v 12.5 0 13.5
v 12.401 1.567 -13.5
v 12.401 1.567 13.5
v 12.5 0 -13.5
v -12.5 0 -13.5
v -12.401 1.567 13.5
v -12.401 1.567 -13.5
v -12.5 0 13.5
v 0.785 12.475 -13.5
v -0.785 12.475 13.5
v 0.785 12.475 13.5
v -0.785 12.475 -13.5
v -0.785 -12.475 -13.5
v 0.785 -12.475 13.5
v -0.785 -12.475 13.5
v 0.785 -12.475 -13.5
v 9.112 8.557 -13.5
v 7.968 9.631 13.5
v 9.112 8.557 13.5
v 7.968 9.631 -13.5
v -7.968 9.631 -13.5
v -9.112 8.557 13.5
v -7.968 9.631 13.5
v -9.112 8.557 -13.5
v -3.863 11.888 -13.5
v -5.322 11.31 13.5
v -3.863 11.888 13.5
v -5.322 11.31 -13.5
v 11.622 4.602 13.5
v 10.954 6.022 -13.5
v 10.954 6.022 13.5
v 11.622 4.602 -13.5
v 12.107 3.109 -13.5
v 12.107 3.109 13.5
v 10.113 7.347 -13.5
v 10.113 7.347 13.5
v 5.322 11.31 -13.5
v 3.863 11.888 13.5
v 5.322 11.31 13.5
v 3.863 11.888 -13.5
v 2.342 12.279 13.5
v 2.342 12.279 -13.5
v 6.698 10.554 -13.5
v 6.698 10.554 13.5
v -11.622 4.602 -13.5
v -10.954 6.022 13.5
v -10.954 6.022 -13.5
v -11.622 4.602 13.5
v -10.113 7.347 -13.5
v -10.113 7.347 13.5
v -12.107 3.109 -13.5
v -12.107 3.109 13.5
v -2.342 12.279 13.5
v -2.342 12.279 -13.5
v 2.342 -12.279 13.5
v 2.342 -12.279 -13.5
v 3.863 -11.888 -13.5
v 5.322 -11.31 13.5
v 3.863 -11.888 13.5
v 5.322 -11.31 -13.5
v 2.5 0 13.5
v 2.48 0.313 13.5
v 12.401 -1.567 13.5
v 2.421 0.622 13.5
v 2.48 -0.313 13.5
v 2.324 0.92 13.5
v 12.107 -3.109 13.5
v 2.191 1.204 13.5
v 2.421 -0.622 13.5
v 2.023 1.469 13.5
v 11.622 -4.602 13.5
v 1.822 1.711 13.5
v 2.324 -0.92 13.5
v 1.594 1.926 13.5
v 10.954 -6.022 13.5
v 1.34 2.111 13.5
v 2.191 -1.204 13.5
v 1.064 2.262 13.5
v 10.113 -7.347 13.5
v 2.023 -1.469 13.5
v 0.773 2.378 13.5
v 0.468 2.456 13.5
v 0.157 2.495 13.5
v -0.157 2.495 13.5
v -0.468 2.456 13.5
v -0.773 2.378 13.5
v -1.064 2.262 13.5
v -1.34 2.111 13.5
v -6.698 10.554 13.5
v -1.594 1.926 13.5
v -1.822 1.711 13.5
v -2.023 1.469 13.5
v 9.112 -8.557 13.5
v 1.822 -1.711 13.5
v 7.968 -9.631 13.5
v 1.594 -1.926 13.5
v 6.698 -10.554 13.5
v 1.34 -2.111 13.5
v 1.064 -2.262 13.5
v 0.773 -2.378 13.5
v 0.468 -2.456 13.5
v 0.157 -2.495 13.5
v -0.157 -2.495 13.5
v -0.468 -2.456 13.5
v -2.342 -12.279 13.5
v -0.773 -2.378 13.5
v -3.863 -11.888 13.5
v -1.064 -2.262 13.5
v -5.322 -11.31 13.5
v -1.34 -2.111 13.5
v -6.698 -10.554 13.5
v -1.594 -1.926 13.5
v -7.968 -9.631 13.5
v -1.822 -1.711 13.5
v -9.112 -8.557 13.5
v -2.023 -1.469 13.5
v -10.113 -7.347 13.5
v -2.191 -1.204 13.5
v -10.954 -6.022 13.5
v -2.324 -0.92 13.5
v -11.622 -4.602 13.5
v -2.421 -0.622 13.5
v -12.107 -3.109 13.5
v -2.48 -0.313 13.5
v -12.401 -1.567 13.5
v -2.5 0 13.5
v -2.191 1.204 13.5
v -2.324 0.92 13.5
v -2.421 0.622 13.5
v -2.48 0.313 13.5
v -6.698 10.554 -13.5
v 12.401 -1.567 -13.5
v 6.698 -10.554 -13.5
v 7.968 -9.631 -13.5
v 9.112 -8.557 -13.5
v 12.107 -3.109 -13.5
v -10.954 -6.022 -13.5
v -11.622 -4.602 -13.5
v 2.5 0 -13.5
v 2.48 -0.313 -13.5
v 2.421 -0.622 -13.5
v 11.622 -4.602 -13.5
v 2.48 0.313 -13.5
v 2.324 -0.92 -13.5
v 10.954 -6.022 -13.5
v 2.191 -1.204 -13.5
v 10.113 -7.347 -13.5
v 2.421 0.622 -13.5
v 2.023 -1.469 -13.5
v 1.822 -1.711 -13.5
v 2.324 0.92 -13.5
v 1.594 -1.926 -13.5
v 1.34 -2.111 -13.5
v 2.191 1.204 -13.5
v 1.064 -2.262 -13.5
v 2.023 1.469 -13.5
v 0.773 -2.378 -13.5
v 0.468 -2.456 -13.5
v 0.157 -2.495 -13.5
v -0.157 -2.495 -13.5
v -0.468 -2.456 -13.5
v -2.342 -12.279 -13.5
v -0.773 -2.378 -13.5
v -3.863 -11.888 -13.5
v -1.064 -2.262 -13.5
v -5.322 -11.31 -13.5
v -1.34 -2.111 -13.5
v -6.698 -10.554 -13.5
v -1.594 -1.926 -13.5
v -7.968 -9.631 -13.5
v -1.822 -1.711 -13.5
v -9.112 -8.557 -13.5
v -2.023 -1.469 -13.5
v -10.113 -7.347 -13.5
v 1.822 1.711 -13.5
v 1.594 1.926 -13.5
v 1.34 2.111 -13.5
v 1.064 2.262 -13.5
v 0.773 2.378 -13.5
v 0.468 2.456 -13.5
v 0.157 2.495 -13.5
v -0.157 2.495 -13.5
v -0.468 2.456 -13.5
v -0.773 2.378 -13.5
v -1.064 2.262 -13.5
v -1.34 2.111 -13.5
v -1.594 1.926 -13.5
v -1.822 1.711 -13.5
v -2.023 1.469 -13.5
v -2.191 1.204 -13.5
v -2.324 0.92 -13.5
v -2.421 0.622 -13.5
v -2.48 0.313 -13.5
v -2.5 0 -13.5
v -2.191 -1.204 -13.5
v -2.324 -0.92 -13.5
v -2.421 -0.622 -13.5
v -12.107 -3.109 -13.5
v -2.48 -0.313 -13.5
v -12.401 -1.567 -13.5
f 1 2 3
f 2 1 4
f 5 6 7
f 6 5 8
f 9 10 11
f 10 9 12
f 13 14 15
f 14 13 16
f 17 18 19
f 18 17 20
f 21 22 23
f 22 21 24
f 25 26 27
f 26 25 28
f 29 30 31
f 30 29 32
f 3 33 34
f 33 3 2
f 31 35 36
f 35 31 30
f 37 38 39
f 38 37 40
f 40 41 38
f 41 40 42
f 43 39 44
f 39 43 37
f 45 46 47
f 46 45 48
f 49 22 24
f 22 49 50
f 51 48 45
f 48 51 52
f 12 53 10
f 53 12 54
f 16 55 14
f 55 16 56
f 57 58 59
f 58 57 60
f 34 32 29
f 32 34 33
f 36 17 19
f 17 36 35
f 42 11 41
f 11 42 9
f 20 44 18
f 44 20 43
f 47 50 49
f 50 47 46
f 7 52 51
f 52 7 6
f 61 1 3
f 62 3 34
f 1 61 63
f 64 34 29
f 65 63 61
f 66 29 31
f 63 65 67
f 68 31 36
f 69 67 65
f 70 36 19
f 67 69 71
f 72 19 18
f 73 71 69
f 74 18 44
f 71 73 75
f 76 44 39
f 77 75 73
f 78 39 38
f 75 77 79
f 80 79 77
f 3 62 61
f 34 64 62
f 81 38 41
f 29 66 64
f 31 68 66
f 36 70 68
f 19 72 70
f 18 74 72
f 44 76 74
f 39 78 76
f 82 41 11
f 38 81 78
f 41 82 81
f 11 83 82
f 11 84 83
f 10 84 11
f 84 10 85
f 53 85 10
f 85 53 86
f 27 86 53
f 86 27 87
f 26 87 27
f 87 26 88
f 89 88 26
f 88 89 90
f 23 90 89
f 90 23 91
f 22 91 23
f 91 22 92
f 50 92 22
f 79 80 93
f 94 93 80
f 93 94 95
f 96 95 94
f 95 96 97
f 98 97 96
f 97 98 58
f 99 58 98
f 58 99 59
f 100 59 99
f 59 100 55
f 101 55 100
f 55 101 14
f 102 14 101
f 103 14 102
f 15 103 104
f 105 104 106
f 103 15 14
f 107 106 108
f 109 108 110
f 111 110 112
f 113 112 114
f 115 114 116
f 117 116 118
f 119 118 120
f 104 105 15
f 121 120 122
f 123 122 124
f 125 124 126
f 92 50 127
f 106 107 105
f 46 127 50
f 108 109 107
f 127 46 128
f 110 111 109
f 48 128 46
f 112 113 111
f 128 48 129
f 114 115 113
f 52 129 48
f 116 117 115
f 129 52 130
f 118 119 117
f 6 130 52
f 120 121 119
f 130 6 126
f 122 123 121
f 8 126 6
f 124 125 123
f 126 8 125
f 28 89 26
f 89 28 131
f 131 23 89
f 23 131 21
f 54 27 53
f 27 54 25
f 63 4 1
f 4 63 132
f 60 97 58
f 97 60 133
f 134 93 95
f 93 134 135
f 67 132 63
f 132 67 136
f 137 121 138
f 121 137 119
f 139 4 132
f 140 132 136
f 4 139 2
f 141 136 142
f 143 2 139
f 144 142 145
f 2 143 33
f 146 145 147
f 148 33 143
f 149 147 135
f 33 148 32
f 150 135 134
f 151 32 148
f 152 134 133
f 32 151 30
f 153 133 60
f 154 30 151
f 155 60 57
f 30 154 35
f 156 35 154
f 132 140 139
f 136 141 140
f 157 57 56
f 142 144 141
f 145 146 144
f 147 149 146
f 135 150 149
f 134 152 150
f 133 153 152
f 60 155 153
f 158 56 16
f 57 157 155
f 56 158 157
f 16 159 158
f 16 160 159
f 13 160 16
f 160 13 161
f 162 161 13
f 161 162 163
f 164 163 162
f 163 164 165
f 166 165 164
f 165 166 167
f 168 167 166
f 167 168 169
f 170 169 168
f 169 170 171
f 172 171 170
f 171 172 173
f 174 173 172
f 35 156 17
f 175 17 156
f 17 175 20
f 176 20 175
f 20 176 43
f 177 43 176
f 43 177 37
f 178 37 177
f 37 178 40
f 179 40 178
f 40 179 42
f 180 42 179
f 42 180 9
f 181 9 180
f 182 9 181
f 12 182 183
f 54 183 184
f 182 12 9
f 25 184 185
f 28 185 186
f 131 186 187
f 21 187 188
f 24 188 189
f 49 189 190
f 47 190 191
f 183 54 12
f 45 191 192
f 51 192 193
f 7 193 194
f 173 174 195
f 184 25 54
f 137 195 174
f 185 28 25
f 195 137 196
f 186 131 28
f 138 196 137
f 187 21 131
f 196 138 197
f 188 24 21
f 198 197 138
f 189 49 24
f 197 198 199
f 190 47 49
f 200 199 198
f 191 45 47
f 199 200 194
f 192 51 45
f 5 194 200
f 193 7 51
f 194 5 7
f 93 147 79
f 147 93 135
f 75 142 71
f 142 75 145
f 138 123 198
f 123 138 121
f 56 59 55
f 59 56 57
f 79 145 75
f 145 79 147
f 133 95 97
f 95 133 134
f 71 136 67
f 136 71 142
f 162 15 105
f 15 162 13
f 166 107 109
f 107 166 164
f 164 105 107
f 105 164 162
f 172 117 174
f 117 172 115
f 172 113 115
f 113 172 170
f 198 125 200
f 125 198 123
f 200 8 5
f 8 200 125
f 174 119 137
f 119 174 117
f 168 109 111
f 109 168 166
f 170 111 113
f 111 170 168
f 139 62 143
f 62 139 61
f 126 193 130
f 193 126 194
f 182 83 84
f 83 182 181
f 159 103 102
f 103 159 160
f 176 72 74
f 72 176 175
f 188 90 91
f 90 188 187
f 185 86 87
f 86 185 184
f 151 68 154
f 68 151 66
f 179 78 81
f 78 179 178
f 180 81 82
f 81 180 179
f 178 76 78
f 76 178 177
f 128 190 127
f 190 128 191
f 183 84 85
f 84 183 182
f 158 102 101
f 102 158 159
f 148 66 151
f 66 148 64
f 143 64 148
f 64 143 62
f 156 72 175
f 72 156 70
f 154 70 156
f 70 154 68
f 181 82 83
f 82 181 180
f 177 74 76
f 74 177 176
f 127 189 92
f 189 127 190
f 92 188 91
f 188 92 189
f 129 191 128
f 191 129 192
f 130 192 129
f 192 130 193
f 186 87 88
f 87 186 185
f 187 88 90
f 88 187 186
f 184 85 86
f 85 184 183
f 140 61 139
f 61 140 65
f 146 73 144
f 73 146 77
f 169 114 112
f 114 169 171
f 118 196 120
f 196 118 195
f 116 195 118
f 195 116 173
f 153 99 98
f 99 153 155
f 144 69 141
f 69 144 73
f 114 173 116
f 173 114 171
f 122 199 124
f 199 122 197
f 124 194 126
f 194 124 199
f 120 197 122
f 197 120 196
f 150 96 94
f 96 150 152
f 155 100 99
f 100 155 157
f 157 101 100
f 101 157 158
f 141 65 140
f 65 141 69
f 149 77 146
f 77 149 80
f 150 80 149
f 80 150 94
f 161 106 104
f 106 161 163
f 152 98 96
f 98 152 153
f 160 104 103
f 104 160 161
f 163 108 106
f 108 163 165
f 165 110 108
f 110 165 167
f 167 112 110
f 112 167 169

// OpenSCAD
$fn = 50;


difference() {
	union() {
		translate(v = [0, 0, -13.5000000000]) {
			cylinder(h = 27, r = 12.5000000000);
		}
	}
	union() {
		translate(v = [0, 0, -100.0000000000]) {
			cylinder(h = 200, r = 2.5000000000);
		}
	}
}
